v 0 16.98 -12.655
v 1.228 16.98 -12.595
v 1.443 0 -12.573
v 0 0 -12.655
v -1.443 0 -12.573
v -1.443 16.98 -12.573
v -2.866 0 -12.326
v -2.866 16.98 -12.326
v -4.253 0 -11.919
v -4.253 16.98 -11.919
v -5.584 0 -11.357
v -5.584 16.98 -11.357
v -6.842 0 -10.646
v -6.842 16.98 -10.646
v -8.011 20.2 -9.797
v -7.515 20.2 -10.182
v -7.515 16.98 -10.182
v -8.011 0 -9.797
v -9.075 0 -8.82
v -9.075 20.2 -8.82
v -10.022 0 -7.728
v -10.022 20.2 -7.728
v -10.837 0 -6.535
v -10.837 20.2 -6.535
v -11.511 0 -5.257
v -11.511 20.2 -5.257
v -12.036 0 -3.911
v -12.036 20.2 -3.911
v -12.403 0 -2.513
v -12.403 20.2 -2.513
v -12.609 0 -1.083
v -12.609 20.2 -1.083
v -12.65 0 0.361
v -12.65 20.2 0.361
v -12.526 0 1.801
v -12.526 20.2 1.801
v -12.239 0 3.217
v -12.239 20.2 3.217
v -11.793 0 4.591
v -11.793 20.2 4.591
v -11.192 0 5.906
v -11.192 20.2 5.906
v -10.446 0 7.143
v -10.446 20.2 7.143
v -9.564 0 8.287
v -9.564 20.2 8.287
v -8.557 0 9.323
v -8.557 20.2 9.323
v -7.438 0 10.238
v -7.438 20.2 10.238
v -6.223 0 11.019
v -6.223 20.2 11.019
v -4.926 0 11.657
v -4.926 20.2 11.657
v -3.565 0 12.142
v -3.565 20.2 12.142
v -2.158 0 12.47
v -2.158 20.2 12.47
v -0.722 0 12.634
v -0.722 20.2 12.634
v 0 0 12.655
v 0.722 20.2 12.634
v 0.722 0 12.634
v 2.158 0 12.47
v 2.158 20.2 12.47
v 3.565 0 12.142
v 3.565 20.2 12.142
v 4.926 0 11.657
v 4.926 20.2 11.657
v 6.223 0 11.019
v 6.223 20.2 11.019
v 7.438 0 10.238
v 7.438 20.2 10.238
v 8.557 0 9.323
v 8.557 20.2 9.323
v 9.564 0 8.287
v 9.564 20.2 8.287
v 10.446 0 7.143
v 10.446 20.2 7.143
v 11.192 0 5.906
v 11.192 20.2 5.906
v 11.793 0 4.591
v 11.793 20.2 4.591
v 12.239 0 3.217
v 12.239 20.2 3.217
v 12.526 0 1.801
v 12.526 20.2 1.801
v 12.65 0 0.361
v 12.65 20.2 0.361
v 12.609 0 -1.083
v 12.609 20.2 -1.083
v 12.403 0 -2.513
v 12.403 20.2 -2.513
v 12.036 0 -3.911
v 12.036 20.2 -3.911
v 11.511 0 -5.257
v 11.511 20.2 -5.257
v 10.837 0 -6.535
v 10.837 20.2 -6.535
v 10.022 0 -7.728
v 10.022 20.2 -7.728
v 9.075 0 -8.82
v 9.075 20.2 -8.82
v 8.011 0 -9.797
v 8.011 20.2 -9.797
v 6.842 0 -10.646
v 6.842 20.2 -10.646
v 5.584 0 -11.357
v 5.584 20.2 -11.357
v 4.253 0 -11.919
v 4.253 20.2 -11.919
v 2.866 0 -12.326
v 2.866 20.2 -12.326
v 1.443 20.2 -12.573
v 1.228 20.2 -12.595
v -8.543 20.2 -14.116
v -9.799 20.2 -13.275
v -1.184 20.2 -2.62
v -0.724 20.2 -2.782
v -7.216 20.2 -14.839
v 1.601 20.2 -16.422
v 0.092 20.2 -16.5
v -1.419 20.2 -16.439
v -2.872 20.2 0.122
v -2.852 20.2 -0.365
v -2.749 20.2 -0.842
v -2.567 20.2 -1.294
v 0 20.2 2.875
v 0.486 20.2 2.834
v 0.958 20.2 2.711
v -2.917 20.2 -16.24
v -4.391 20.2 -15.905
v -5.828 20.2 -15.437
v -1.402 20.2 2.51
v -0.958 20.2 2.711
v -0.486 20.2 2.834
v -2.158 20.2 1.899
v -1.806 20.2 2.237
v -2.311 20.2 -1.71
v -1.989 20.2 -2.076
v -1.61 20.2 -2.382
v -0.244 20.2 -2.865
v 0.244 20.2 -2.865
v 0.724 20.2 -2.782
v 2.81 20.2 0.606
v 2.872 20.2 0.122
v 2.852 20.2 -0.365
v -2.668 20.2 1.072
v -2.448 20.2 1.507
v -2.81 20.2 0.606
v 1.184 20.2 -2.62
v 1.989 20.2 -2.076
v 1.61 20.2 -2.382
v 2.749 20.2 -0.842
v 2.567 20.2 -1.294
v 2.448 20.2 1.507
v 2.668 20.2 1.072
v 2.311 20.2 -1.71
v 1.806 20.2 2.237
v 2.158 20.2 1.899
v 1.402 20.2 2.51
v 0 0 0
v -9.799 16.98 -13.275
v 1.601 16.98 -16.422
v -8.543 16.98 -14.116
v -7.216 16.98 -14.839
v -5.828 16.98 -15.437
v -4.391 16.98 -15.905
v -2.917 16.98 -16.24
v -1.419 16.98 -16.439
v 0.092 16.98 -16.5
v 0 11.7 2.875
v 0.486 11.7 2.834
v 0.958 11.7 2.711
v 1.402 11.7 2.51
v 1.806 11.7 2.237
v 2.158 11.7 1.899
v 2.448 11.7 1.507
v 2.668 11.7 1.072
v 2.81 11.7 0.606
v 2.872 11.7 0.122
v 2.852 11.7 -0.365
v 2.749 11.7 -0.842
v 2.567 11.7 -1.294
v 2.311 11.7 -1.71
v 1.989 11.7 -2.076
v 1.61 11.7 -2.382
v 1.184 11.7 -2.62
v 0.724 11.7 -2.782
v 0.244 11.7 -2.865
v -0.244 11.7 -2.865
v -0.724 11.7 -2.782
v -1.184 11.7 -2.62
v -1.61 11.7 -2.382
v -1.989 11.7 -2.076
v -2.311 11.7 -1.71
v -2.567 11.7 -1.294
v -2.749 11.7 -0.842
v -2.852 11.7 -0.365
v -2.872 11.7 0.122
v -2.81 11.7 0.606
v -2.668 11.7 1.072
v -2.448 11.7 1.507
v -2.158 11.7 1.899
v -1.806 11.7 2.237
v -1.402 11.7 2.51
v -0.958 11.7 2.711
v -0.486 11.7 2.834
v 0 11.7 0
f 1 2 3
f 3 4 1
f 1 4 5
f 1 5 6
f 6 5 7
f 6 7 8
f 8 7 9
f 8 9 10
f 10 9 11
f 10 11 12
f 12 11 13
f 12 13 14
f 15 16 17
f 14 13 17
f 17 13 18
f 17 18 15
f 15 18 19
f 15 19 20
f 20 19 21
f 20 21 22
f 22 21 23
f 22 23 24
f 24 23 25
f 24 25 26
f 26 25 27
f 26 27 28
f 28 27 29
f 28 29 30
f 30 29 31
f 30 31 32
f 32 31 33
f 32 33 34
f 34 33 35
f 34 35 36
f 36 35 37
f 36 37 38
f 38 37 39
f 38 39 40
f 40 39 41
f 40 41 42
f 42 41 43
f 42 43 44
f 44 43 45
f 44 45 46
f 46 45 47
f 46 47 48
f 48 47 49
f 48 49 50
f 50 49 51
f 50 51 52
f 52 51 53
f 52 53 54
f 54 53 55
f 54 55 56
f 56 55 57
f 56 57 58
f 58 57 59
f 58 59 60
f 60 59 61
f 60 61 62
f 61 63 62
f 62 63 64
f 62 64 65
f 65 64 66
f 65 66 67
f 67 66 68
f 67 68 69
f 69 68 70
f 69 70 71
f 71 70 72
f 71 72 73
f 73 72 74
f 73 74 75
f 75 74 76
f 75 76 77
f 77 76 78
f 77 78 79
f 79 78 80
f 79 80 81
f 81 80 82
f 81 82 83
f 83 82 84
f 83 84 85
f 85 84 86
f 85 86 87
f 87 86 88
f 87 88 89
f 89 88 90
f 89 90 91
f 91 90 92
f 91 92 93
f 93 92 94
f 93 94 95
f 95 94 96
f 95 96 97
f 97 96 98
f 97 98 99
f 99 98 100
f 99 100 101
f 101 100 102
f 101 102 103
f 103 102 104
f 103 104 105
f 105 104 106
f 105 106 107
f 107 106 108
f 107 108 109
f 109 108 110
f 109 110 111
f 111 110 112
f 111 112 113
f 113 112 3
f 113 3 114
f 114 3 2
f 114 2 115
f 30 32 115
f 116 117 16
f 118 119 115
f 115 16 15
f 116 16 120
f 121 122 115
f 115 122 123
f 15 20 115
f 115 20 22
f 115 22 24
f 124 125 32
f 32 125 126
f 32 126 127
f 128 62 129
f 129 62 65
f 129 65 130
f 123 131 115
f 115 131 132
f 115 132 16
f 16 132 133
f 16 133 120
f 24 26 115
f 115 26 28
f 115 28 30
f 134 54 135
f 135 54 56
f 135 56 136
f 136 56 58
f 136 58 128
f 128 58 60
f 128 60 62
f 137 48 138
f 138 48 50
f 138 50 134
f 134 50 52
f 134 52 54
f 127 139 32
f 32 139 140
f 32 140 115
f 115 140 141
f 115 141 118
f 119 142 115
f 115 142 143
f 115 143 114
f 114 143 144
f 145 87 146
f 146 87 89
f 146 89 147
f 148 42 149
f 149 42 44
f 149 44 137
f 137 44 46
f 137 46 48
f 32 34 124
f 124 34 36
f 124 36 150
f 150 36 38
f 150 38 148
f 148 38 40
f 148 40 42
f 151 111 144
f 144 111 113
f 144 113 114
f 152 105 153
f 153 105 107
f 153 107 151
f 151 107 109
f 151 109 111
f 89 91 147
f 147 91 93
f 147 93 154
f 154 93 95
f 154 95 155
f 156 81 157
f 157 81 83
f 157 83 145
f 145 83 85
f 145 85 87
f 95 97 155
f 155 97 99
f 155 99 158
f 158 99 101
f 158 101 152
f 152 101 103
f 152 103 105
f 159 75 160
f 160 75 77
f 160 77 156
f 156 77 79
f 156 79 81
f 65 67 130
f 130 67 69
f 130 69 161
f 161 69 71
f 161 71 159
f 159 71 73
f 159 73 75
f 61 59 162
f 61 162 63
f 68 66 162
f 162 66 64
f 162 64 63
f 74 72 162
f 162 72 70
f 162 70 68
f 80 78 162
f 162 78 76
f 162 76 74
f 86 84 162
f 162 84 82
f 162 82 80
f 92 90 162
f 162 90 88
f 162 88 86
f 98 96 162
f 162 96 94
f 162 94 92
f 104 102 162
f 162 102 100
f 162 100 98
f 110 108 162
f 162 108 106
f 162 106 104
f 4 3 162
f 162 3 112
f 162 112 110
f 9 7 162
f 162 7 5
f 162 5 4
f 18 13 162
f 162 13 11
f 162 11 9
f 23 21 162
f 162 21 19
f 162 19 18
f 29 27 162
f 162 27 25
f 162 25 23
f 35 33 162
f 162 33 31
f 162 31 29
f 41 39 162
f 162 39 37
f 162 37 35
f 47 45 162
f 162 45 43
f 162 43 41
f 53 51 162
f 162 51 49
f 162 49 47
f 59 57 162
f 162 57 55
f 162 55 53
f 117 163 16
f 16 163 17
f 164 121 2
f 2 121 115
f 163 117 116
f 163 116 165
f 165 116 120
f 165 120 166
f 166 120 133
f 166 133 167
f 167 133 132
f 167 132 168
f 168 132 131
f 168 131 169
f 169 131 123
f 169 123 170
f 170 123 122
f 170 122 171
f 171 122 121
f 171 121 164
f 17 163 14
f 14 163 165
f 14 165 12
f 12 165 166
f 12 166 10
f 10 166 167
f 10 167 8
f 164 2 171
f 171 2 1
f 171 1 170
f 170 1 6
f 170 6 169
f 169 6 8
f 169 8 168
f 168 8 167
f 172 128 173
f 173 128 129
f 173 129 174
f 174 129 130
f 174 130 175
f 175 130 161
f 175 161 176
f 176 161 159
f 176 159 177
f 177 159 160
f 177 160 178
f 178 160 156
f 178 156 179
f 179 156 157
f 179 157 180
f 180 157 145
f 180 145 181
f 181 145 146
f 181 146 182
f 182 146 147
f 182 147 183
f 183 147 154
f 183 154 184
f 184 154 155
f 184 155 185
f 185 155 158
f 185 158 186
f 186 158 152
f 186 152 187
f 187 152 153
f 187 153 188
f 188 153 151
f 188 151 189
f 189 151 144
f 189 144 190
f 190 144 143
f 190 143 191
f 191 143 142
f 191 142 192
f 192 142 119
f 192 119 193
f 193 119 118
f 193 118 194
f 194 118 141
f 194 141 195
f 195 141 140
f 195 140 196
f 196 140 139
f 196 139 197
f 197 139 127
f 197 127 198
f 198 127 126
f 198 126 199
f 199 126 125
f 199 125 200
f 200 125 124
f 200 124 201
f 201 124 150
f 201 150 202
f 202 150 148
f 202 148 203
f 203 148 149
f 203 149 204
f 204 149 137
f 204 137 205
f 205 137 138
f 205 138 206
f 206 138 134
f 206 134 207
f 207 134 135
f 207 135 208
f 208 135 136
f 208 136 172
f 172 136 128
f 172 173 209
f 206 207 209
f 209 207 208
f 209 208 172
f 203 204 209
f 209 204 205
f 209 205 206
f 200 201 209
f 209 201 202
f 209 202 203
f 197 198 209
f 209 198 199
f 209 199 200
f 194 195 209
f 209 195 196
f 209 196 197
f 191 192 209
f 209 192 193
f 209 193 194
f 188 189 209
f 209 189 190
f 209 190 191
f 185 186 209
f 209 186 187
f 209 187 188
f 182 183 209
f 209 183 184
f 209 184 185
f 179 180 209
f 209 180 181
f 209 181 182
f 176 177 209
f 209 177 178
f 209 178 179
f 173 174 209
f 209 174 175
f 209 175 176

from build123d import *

# Parameters (mm, degrees)
SKETCH1_R           = 12.655
BOSS_EXTRUDE1_DEPTH = 20.2
BOSS_EXTRUDE2_DEPTH = 3.22
SKETCH3_R           = 2.875
CUT_EXTRUDE1_DEPTH  = 8.5


with BuildPart() as part:
    # Sketch1 → Boss-Extrude1 (new body)
    with BuildSketch(Plane(origin=(0, 0, 0), x_dir=(1, 0, 0), z_dir=(0, 1, 0))):
        with Locations(Location((0, 0, 0), (0, 0, 270))):
            Circle(SKETCH1_R)
    extrude(amount=BOSS_EXTRUDE1_DEPTH)

    # Sketch2 → Boss-Extrude2 (add)
    with BuildSketch(Plane(origin=(0, 20.2, 0), x_dir=(1, 0, 0), z_dir=(0, 1, 0))):
        with BuildLine():
            Line((1.600897841, 16.422153516), (0, 0))
            Line((0, 0), (-9.798866593, 13.275248151))
            ThreePointArc((-9.798866593, 13.275248151), (-4.390606594, 15.90511156), (1.600897841, 16.422153516))
        make_face()
    extrude(amount=-BOSS_EXTRUDE2_DEPTH)

    # Sketch3 → Cut-Extrude1 (cut)
    with BuildSketch(Plane(origin=(0, 20.2, 0), x_dir=(1, 0, 0), z_dir=(0, 1, 0))):
        with Locations(Location((0, 0, 0), (0, 0, 270))):
            Circle(SKETCH3_R)
    extrude(amount=-CUT_EXTRUDE1_DEPTH, mode=Mode.SUBTRACT)


solid = part.part
